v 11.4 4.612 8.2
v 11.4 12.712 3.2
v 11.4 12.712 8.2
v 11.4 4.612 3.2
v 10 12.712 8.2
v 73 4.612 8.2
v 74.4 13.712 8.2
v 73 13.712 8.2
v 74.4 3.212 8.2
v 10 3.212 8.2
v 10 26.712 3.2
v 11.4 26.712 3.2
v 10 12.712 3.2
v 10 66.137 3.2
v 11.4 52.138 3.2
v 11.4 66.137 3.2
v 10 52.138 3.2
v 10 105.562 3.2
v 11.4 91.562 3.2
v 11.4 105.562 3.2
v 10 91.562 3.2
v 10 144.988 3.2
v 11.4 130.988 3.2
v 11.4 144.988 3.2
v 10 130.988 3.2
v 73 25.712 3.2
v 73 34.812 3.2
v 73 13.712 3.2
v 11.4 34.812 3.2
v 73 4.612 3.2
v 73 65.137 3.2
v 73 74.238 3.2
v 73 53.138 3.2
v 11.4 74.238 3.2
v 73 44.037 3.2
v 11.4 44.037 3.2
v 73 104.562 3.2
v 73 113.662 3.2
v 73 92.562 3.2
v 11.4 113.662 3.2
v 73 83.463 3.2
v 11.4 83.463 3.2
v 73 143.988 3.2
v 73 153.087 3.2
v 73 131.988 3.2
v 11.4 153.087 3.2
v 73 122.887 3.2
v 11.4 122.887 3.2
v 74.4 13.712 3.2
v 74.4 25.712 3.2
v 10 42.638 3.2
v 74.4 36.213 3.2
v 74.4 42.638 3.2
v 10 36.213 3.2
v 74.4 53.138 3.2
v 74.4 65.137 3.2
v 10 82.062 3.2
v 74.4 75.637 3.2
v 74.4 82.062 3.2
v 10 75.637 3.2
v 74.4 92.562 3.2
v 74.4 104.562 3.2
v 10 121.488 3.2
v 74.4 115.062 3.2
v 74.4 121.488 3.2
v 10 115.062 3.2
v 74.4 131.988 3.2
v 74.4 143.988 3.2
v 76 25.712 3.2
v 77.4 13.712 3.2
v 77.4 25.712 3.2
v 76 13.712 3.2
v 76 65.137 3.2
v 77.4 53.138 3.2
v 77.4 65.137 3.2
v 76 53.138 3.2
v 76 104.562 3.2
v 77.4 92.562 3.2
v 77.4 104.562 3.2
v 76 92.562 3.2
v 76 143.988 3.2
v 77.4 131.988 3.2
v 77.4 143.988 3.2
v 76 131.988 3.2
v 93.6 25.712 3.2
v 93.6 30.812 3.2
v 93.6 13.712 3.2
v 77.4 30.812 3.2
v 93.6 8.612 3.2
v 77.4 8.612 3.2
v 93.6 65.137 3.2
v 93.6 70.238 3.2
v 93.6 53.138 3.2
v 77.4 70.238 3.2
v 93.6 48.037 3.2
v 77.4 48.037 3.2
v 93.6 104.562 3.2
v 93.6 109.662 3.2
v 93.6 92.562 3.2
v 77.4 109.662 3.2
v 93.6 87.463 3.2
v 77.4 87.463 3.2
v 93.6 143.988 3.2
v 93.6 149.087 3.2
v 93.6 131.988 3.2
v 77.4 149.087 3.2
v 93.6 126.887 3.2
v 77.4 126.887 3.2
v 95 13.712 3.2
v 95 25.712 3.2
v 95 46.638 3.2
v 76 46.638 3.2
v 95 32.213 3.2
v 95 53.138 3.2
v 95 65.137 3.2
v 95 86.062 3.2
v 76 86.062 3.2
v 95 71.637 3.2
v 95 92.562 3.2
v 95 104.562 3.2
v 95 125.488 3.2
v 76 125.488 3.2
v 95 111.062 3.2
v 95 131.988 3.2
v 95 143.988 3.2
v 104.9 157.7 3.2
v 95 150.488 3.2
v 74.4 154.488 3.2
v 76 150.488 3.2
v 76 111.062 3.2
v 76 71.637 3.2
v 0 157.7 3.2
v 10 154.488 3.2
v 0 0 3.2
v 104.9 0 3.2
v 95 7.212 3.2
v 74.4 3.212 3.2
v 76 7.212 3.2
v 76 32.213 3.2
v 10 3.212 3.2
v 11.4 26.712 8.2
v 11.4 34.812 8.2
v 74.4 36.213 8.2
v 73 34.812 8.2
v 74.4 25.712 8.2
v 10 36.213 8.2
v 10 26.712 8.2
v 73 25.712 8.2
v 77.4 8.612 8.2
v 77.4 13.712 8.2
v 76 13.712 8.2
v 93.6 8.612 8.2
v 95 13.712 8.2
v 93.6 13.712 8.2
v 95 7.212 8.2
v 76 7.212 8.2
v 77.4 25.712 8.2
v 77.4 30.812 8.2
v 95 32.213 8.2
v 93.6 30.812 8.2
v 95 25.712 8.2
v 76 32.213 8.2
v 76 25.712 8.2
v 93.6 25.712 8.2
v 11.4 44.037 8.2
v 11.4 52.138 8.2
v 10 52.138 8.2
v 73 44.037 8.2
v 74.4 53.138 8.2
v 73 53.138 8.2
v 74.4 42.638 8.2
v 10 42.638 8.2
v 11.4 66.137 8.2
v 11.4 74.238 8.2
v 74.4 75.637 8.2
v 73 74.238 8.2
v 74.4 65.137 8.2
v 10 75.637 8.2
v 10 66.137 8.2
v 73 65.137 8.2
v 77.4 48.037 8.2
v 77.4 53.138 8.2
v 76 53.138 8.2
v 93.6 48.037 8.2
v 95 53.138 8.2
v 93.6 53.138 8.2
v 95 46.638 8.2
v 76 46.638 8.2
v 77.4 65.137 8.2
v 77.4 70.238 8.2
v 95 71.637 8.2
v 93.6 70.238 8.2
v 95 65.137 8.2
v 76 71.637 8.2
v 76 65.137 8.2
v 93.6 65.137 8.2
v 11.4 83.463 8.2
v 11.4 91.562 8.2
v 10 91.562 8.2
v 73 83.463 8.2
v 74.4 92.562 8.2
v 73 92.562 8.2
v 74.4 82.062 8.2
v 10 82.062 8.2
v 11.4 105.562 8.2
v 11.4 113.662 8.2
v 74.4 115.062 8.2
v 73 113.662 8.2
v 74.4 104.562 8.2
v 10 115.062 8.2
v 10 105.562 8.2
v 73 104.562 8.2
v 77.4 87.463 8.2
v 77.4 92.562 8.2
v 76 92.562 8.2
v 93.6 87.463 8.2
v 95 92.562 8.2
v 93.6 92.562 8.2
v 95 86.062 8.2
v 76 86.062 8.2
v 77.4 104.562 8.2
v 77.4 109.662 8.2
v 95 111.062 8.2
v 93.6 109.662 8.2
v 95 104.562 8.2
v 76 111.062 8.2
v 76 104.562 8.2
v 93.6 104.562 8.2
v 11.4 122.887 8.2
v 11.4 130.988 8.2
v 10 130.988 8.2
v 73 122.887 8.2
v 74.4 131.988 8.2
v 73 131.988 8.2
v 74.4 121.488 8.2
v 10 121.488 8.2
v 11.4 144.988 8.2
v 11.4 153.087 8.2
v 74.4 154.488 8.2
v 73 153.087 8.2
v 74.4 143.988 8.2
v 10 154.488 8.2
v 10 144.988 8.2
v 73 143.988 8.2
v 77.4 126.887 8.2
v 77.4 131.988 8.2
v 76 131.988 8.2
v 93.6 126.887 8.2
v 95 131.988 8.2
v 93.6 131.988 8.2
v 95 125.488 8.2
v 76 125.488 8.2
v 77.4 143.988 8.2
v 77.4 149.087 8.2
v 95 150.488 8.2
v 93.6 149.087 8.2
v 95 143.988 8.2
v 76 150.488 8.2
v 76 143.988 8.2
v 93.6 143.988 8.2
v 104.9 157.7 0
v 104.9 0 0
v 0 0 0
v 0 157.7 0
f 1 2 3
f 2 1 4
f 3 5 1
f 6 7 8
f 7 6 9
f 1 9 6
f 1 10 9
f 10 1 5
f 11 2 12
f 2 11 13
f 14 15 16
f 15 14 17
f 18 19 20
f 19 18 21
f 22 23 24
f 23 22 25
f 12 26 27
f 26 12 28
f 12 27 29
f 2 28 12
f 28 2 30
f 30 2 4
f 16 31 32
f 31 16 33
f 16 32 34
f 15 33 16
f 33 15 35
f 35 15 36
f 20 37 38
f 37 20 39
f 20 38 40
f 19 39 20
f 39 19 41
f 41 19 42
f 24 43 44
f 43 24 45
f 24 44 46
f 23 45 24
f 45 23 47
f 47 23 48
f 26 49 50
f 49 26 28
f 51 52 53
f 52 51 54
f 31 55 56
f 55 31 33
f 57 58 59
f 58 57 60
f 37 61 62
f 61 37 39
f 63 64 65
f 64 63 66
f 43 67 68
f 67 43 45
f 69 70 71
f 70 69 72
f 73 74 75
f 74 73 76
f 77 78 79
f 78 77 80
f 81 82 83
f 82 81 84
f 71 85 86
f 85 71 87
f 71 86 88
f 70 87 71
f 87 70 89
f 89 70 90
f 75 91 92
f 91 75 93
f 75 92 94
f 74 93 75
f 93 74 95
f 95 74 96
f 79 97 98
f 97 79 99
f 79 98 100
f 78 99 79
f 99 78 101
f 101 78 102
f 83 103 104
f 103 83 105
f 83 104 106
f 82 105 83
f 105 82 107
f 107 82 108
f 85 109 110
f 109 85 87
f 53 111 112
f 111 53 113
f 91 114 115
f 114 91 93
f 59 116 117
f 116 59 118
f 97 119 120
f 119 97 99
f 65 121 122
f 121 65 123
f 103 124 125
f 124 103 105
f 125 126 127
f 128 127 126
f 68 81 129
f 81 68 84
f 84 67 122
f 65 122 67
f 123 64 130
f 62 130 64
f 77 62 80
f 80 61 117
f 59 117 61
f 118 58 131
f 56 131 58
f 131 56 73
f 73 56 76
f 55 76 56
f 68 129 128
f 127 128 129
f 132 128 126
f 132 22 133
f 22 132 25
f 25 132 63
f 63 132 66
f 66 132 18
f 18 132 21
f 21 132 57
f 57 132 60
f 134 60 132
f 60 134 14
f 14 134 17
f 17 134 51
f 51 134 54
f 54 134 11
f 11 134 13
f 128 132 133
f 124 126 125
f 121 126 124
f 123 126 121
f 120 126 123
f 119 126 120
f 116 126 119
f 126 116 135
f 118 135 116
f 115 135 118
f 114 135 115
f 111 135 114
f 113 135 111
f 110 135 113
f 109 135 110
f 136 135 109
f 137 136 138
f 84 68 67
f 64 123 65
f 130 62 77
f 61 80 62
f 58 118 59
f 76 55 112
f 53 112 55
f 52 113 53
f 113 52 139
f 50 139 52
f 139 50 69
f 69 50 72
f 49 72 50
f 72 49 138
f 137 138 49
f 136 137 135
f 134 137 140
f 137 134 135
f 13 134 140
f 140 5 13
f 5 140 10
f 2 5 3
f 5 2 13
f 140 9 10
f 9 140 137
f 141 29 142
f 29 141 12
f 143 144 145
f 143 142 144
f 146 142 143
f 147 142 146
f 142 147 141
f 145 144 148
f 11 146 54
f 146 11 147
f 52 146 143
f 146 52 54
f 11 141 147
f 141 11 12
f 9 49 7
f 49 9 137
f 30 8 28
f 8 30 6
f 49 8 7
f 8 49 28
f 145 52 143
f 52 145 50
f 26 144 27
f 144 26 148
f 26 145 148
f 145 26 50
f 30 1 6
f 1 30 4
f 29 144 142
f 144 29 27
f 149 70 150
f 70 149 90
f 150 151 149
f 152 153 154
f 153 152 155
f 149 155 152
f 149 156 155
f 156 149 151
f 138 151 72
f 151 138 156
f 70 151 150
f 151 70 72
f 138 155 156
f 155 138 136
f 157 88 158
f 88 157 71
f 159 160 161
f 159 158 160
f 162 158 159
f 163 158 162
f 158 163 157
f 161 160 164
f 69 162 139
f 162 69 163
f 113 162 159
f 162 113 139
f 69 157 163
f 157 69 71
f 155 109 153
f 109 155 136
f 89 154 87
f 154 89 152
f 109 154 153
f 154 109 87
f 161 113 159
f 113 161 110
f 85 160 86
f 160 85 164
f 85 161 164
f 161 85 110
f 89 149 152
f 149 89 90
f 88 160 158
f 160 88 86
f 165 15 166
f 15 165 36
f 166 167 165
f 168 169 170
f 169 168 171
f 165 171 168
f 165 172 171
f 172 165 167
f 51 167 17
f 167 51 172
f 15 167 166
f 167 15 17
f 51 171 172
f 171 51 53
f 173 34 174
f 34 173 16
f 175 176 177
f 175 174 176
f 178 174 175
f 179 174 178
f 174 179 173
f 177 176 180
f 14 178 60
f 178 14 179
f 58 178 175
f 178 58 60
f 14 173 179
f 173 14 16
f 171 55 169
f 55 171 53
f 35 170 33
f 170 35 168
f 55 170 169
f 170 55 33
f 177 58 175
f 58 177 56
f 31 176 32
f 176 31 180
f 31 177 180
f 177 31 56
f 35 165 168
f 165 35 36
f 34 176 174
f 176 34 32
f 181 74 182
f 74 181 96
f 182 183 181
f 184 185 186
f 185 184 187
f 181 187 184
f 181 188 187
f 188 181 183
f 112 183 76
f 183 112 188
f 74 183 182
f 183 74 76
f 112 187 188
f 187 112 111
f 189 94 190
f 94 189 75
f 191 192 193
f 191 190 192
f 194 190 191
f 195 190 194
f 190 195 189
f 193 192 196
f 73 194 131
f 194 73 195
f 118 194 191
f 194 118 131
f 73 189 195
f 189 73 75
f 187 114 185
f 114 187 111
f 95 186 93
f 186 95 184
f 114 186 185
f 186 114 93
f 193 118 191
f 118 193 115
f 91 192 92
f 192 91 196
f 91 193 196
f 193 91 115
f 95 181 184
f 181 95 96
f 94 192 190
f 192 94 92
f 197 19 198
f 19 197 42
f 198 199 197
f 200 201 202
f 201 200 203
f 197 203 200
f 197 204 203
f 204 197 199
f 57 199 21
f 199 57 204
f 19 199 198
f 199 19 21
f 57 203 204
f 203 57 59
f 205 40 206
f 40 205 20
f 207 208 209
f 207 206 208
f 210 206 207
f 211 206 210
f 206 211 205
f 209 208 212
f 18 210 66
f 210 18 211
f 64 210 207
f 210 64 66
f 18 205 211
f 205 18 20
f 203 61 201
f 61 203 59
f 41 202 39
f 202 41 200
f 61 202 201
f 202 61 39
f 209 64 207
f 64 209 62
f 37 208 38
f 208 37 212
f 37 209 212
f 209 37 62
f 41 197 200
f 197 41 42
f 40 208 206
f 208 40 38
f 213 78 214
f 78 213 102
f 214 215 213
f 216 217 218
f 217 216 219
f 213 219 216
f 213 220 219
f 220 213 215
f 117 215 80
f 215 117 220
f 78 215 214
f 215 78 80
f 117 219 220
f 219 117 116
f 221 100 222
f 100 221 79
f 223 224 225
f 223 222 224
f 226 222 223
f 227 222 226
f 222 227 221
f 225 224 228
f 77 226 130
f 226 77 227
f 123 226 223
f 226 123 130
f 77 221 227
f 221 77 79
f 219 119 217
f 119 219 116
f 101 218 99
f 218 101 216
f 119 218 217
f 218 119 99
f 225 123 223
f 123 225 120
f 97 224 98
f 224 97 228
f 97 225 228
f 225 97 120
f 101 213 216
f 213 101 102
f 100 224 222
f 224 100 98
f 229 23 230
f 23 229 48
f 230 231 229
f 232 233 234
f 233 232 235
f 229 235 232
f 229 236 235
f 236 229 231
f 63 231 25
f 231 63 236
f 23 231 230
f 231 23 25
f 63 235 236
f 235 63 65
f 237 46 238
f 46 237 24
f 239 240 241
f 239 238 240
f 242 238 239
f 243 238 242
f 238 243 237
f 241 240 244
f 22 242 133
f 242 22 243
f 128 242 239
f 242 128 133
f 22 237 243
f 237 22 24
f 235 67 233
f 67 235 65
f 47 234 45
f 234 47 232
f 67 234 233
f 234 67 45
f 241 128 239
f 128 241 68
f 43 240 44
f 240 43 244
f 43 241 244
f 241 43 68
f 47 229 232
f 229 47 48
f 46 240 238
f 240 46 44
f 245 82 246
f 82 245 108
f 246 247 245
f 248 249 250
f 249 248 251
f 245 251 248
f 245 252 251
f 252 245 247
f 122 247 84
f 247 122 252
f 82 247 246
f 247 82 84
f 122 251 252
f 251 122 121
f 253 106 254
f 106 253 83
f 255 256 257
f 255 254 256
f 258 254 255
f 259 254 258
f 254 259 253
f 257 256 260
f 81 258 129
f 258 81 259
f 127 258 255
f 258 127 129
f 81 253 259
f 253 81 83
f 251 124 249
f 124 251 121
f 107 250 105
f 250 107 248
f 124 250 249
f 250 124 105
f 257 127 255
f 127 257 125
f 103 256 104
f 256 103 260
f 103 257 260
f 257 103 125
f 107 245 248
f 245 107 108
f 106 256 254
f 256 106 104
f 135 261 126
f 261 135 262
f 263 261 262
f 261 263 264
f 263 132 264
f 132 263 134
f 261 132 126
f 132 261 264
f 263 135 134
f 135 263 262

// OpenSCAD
// ============================================================================
// PLATE - the bohío. One PETG tray on top of the HPE 1420.
// Four cimarrones, bare boards, and a well for each USB-C breakout.
// The tray sits inside the shell.
//
// The RJ45 on each blade faces the back, through a slot a bit wider than
// the USB-C one. The USB-C plug faces the front, through a 12 mm slot.
// Between them, one centered slot lets the wires cross from the ESP32
// to its breakout. The side walls stay solid.
//
// The tray is the same size as the switch top. Double-sided tape holds it.
// A skirt that hooked under the switch would need supports, so it is not here.
//
// AXES, installed:
//   x  depth, 0 at the port face (the back), growing toward the front
//   y  width, left to right
//   z  up, z=0 on the switch lid
//
// PRINT flat, deck on the bed, nests up. PETG, 0.2 mm, 3 perimeters,
// 20% infill, no supports. Each nest is the board plus 0.6 mm a side.
// ============================================================================

sw_w = 157.7;
sw_d = 104.9;
deck = 3.2;

board_l = 61;          // depth, jack end to the far end
board_w = 29;          // width
board_x = 12;          // jack end. The plug leaves off the port edge.
wall_t  = 1.4;
wall_h  = 5;           // blade nests and breakout wells, one height
slack   = 0.6;         // extra around the PCB, per side

bay_x = board_x + board_l + 3;
bay_l = 15;            // breakout depth
bay_w = 21;            // breakout width
usb_slot = 12;         // front of each breakout
rj_slot  = 14;         // back of each blade
cable_w  = 12;         // centered, between the blade and its breakout

$fn = 16;

module deck() {
    cube([sw_d, sw_w, deck]);
}

// A wall across y, with one centered slot.
module lip(x, y, span, slot) {
    side = (span - slot) / 2;
    translate([x, y, deck])
        cube([wall_t, side, wall_h]);
    translate([x, y + side + slot, deck])
        cube([wall_t, side, wall_h]);
}

module blade_nest(y) {
    x0 = board_x - slack;
    y0 = y - slack;
    len = board_l + slack;
    wid = board_w + 2 * slack;
    span = wid + 2 * wall_t;
    // side walls, solid
    translate([x0, y0 - wall_t, deck])
        cube([len, wall_t, wall_h]);
    translate([x0, y0 + wid, deck])
        cube([len, wall_t, wall_h]);
    // back: RJ45. Front of this nest: cable slot toward the breakout.
    lip(x0 - wall_t, y0 - wall_t, span, rj_slot);
    lip(x0 + len, y0 - wall_t, span, cable_w);
}

// Well in front of the blade. Back wall carries the same cable slot.
// Front wall has the USB-C slot.
module breakout_well(y) {
    iw = bay_w + 2 * slack;
    il = bay_l + 2 * slack;
    y0 = y + board_w / 2 - iw / 2;
    span = iw + 2 * wall_t;
    translate([bay_x + wall_t, y0 - wall_t, deck])
        cube([il, wall_t, wall_h]);
    translate([bay_x + wall_t, y0 + iw, deck])
        cube([il, wall_t, wall_h]);
    lip(bay_x, y0 - wall_t, span, cable_w);
    lip(bay_x + wall_t + il, y0 - wall_t, span, usb_slot);
}

module plate() {
    pitch = sw_w / 4;
    deck();
    for (i = [0 : 3]) {
        y = pitch * i + (pitch - board_w) / 2;
        blade_nest(y);
        breakout_well(y);
    }
}

plate();
